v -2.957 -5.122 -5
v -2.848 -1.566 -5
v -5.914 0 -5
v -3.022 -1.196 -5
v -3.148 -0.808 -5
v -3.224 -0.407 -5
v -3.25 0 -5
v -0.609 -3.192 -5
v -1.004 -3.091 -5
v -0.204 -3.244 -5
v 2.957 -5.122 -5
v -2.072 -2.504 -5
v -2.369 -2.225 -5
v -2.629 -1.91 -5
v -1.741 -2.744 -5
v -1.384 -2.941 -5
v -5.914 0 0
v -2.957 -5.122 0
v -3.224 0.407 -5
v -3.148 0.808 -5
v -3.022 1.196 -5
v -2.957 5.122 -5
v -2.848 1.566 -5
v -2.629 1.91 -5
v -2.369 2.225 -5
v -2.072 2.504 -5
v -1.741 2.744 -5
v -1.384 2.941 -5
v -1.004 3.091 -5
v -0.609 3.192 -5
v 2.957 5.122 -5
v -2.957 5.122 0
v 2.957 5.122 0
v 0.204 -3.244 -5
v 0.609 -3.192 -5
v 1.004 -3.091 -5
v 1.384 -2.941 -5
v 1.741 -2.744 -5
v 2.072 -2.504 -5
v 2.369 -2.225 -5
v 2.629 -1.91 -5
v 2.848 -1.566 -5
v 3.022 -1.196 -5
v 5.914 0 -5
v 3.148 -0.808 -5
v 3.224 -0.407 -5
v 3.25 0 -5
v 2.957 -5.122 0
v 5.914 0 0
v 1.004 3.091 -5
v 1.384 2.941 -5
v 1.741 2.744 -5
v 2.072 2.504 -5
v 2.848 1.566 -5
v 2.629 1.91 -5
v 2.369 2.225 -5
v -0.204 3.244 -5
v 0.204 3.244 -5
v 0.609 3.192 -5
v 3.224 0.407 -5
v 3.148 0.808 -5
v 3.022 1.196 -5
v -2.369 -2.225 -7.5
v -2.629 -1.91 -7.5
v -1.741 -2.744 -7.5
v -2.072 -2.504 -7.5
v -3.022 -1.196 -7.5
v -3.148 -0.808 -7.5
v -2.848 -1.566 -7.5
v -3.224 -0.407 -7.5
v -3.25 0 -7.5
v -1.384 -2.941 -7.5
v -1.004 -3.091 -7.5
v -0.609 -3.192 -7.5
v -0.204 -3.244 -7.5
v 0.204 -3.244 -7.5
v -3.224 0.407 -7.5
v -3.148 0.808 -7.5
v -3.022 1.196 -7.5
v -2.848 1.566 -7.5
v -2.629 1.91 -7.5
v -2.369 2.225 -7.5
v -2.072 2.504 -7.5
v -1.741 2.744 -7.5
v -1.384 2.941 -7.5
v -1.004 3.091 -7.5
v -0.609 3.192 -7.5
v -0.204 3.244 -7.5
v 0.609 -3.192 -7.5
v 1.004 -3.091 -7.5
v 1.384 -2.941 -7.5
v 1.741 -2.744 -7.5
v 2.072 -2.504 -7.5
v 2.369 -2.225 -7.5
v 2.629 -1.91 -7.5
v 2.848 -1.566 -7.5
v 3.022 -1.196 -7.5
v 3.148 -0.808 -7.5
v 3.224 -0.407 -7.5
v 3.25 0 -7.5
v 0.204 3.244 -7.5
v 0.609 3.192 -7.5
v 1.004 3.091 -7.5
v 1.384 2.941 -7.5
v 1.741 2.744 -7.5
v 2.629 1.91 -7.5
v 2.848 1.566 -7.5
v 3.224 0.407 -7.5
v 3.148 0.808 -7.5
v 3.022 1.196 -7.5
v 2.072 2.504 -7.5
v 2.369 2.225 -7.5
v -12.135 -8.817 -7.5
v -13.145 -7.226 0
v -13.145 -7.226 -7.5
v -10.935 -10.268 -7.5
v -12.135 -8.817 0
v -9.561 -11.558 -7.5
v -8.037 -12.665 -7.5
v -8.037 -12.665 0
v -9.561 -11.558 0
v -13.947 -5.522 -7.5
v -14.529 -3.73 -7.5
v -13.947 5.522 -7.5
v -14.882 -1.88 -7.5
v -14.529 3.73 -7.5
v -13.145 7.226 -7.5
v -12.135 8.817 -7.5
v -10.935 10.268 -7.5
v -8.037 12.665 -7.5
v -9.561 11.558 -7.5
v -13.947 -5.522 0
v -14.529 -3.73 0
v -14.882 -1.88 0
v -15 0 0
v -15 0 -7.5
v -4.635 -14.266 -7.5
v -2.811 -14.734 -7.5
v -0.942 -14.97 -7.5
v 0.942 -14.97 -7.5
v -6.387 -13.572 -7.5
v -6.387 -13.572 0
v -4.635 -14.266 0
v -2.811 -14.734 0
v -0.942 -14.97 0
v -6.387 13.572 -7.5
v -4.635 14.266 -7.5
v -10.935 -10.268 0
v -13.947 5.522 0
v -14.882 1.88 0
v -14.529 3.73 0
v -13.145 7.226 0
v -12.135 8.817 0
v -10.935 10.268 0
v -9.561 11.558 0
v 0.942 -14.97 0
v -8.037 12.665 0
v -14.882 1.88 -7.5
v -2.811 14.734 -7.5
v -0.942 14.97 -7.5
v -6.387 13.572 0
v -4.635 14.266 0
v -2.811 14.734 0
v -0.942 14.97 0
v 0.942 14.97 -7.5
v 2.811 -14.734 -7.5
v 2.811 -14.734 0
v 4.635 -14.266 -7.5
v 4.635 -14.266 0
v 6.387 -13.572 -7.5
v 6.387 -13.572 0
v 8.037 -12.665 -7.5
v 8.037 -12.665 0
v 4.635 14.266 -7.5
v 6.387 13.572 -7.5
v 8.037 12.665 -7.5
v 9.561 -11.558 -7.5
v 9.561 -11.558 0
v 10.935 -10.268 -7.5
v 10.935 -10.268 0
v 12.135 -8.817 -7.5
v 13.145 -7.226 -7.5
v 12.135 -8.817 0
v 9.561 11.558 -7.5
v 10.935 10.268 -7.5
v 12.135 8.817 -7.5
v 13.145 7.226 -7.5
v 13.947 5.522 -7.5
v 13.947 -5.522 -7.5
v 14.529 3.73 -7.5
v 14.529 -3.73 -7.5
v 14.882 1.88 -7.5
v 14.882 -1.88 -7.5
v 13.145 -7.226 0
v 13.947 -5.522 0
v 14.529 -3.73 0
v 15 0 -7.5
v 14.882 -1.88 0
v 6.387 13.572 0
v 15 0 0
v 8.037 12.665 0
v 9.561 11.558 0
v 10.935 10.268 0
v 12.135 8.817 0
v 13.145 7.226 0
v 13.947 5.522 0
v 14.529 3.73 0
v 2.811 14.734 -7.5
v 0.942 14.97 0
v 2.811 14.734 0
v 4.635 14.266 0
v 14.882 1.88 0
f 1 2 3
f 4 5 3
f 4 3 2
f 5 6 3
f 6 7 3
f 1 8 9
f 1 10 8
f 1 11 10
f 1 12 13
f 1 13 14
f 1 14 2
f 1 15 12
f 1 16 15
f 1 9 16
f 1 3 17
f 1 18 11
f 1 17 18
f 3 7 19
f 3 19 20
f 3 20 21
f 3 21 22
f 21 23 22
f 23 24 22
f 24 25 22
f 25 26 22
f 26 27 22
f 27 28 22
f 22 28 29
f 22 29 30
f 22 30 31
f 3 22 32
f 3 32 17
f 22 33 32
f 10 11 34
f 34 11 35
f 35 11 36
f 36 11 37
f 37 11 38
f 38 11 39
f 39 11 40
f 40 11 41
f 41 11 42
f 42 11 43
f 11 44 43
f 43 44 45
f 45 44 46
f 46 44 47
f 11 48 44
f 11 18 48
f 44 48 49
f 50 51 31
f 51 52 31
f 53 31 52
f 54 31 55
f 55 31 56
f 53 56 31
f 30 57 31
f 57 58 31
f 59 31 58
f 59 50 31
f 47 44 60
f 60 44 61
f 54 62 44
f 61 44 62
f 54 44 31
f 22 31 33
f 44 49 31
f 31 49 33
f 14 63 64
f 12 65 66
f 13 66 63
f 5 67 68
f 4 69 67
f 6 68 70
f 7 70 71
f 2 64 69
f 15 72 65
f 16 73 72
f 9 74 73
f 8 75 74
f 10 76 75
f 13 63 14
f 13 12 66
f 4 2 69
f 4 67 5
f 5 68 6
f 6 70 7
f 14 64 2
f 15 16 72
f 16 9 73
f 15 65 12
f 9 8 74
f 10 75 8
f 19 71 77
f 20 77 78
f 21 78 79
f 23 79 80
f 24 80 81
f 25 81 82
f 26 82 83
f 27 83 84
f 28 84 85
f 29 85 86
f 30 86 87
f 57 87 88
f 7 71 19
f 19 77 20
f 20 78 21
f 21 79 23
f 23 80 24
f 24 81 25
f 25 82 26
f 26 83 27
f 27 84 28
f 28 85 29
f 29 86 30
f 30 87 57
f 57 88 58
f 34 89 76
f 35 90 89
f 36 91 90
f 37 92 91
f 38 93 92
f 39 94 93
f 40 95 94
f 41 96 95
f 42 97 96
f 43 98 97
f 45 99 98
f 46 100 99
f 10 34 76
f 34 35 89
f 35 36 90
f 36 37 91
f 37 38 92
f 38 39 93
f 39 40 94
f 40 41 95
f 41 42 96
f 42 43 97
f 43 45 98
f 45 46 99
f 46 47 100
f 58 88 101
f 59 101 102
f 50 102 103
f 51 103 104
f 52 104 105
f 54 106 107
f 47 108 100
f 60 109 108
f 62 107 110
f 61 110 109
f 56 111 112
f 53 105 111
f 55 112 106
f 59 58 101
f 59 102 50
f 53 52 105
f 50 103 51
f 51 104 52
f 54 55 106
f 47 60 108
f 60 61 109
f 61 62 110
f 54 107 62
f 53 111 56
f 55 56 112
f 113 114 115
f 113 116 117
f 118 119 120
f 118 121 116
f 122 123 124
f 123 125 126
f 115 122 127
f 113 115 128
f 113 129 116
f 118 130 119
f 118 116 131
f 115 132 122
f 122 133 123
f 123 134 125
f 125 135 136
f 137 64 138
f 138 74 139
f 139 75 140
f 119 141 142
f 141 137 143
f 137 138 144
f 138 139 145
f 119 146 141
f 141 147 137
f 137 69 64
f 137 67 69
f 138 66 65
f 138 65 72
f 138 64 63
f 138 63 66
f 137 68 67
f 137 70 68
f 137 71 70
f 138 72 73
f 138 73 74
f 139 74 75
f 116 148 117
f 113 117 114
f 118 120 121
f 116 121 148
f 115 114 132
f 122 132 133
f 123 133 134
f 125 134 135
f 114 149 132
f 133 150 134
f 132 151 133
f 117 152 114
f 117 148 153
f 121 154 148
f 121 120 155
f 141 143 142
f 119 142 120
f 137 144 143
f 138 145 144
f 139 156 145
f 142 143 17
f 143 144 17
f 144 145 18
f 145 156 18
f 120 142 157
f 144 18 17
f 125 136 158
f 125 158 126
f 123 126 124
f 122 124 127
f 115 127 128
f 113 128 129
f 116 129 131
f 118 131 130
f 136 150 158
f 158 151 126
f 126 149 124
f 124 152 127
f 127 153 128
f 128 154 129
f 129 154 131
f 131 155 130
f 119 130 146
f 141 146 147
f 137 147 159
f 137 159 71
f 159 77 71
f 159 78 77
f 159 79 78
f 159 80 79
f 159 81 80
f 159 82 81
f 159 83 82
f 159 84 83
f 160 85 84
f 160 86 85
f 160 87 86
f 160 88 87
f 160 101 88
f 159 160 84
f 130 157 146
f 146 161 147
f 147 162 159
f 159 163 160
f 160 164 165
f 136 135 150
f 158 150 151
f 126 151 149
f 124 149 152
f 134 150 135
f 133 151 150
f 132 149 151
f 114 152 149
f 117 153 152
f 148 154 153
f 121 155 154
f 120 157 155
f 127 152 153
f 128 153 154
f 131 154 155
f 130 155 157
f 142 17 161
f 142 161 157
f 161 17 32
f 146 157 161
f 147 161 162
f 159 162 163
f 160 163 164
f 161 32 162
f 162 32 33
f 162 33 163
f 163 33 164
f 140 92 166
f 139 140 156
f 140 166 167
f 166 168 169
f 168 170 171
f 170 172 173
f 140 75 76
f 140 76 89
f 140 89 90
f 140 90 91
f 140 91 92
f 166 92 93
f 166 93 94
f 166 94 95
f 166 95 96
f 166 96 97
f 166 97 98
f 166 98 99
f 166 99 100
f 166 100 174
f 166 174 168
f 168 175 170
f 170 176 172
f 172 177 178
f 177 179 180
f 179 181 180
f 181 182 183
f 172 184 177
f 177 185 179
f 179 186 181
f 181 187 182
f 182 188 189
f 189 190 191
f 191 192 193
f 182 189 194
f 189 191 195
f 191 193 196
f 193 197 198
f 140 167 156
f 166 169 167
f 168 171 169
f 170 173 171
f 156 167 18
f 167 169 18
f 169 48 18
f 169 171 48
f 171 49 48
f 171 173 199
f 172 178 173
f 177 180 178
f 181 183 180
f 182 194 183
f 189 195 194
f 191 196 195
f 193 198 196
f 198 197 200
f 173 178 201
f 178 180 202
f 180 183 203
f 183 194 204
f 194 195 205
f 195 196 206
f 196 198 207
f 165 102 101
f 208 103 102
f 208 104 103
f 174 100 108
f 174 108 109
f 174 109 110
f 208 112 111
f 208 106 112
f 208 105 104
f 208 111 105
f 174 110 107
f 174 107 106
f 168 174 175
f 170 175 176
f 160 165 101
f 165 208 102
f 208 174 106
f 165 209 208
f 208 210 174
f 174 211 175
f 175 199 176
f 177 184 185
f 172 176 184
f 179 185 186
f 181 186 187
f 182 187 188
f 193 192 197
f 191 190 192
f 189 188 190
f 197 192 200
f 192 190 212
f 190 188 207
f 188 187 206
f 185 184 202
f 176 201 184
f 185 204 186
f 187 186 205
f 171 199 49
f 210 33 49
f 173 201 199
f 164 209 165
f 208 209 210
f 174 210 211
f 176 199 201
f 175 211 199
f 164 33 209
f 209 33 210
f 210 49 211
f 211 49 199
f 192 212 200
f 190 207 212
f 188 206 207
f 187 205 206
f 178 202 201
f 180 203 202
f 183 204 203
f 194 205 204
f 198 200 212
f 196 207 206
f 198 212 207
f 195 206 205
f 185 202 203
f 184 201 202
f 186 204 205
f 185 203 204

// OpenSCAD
$fn = 50;

difference() {
	union() {
		translate(v = [0, 0, -7.5]) {
			cylinder(h = 7.5, r = 15.0);
		}
	}
	union() {
		translate(v = [0, 0, 0]) {
			rotate(a = [0, 0, 0]) {
				difference() {
					union() {
						translate(v = [0, 0, -5]) {
							linear_extrude(height = 5) {
								polygon(points = [[5.914249999999999, 0.0], [2.957125, 5.1218907443321156], [-2.9571249999999982, 5.1218907443321156], [-5.914249999999999, 7.242867331857232e-16], [-2.9571250000000022, -5.121890744332115], [2.9571249999999956, -5.121890744332118]]);
							}
						}
					}
					union();
				}
			}
		}
		#translate(v = [0, 0, -100.0]) {
			cylinder(h = 200, r = 3.25);
		}
	}
}
